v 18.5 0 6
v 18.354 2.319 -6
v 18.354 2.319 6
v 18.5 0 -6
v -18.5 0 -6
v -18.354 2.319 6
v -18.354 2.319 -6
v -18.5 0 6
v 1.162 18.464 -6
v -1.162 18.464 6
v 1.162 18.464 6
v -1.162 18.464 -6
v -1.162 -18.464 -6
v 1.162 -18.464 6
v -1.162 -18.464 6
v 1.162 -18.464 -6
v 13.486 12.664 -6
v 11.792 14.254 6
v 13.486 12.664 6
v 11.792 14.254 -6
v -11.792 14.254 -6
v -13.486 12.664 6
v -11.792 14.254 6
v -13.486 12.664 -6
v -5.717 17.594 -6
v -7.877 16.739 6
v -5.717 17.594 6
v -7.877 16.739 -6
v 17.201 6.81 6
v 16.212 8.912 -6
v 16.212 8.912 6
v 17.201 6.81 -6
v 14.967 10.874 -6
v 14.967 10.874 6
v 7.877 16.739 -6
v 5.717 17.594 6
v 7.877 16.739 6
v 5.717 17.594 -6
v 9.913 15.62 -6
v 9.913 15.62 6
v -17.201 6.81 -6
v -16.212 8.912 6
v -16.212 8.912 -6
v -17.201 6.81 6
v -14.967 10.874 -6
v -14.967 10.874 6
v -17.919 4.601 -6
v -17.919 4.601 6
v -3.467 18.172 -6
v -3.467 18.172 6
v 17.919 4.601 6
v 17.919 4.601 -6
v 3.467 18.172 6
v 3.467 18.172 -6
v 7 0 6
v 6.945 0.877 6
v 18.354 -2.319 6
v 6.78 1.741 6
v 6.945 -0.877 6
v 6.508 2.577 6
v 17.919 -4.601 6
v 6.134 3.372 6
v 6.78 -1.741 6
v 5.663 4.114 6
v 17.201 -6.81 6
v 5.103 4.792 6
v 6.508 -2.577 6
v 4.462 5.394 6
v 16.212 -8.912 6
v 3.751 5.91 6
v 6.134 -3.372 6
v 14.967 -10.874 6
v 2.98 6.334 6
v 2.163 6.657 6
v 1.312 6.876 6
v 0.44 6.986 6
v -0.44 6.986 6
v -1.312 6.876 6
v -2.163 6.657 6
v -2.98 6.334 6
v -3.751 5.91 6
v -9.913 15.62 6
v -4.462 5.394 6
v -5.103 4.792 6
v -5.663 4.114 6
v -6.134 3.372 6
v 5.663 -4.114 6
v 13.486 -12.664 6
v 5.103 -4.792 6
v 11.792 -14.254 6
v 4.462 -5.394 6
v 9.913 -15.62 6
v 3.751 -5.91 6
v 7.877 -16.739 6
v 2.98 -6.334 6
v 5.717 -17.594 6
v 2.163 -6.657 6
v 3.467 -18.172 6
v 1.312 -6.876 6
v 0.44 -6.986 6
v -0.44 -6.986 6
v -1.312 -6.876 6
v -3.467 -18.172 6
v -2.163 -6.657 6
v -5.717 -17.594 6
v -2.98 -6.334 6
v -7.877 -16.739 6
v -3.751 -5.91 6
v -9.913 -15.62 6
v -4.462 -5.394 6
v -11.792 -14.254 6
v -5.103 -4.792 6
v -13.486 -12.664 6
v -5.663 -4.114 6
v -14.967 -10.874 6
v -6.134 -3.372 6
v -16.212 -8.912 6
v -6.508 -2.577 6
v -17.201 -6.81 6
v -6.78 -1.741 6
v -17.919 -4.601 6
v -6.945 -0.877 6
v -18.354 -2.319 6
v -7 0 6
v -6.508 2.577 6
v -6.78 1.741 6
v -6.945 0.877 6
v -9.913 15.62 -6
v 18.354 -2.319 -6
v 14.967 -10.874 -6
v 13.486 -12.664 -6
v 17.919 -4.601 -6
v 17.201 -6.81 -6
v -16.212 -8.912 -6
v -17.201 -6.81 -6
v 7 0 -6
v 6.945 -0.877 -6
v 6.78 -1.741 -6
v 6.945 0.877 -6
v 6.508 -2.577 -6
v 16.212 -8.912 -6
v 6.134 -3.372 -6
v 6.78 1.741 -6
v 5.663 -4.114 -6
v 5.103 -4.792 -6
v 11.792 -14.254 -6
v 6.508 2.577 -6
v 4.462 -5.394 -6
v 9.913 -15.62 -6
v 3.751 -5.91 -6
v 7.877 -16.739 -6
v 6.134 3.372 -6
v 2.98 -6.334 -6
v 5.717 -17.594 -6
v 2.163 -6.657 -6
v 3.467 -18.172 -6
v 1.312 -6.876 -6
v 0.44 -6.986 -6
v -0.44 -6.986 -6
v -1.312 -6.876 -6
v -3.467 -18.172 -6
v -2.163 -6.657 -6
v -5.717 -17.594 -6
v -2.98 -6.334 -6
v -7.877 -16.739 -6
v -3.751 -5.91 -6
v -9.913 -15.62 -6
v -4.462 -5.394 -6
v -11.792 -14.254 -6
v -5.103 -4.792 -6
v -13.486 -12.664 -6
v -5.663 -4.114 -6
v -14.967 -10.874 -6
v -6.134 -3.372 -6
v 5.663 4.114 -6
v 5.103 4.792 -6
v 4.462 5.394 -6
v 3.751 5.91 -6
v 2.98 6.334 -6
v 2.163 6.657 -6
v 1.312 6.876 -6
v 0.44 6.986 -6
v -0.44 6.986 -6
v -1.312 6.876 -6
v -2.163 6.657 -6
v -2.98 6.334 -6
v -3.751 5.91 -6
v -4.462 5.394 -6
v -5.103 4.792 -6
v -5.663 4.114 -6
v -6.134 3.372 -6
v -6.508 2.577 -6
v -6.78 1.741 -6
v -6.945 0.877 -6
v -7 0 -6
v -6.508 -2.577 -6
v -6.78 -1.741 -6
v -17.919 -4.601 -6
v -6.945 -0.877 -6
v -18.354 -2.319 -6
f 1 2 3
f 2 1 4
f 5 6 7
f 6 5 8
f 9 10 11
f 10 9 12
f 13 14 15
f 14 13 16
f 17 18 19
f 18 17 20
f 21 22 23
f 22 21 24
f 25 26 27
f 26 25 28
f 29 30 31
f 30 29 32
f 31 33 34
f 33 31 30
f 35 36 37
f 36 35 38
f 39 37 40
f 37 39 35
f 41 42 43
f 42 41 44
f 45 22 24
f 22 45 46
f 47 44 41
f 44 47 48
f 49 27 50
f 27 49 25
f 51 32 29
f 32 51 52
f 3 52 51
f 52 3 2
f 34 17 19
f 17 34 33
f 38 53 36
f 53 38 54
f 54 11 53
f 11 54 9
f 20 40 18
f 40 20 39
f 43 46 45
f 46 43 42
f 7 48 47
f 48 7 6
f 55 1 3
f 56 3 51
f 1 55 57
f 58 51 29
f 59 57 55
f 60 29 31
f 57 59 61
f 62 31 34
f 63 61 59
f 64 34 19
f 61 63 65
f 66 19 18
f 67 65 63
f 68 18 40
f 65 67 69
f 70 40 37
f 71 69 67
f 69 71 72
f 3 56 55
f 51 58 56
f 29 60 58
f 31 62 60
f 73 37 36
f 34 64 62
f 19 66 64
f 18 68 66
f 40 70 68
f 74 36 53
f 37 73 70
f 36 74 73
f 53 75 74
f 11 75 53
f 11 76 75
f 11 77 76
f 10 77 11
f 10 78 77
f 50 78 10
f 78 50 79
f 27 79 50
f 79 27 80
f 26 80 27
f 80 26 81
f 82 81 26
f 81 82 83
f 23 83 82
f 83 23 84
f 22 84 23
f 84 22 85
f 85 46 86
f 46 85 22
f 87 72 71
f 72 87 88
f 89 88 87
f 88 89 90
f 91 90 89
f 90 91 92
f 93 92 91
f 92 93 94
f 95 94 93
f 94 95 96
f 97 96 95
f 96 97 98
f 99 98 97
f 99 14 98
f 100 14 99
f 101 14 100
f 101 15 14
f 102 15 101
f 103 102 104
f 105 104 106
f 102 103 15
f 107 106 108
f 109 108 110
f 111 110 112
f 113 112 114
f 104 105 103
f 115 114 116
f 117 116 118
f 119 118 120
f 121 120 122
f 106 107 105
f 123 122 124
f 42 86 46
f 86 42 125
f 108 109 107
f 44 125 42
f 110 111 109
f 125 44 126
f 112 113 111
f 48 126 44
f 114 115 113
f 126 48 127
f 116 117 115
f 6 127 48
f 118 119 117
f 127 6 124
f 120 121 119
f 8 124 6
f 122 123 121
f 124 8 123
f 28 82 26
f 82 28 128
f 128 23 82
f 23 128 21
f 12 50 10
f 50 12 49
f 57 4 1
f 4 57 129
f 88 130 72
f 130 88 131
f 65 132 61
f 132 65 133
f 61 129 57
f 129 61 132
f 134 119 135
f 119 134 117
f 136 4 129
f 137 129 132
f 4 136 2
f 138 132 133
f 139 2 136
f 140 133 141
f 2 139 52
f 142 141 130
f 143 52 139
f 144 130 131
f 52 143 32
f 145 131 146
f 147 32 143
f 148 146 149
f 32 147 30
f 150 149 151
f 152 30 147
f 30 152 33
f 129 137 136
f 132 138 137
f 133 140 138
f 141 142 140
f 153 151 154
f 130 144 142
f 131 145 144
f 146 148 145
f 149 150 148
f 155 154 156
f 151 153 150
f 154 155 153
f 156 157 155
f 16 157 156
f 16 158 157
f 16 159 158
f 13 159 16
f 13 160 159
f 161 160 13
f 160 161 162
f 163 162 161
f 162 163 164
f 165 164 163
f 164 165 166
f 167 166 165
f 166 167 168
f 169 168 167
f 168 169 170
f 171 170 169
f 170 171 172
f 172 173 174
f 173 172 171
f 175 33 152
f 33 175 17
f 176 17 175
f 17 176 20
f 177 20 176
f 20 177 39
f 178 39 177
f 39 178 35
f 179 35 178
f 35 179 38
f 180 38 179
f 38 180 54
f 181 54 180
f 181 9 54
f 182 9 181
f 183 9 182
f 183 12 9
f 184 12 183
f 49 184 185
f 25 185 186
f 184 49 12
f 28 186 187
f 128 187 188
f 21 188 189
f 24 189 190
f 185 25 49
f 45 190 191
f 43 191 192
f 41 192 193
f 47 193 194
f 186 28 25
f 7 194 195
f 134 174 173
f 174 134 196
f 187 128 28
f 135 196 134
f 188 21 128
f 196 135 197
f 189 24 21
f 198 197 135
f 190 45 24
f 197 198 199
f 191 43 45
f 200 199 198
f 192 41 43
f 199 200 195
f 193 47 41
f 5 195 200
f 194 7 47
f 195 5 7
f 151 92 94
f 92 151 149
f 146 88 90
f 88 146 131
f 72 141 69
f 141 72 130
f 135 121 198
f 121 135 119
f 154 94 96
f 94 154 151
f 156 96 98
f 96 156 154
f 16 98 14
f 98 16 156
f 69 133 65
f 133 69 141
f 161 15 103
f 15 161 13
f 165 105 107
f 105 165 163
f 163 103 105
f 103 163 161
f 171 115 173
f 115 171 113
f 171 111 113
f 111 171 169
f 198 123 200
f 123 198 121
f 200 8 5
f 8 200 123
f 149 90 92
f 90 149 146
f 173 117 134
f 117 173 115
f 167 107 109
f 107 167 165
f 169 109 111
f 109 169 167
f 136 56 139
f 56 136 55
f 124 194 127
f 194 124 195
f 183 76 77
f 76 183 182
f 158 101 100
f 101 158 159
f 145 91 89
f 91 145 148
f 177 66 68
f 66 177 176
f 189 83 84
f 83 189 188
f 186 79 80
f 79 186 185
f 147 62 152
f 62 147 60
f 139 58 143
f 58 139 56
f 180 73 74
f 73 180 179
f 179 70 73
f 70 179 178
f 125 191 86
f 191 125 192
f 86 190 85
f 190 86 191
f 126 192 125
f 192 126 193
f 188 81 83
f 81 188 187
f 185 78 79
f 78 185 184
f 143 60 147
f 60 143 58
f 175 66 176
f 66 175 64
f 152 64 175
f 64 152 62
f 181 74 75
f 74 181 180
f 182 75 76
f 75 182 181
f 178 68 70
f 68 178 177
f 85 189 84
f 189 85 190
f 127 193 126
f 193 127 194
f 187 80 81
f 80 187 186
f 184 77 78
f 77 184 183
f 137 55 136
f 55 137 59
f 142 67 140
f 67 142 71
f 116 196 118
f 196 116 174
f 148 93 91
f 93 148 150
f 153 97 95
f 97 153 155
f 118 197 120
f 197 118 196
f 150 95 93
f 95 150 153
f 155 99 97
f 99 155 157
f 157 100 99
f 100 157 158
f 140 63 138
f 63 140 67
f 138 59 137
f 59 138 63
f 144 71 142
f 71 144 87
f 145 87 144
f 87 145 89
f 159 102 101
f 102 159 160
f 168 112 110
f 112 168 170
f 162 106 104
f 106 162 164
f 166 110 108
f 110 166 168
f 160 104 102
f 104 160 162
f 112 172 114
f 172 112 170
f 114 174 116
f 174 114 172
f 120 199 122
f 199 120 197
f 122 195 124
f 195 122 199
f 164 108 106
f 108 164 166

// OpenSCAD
$fn = 50;


difference() {
	union() {
		translate(v = [0, 0, -6.0000000000]) {
			cylinder(h = 12, r = 18.5000000000);
		}
	}
	union() {
		translate(v = [0, 0, -100.0000000000]) {
			cylinder(h = 200, r = 7);
		}
	}
}
